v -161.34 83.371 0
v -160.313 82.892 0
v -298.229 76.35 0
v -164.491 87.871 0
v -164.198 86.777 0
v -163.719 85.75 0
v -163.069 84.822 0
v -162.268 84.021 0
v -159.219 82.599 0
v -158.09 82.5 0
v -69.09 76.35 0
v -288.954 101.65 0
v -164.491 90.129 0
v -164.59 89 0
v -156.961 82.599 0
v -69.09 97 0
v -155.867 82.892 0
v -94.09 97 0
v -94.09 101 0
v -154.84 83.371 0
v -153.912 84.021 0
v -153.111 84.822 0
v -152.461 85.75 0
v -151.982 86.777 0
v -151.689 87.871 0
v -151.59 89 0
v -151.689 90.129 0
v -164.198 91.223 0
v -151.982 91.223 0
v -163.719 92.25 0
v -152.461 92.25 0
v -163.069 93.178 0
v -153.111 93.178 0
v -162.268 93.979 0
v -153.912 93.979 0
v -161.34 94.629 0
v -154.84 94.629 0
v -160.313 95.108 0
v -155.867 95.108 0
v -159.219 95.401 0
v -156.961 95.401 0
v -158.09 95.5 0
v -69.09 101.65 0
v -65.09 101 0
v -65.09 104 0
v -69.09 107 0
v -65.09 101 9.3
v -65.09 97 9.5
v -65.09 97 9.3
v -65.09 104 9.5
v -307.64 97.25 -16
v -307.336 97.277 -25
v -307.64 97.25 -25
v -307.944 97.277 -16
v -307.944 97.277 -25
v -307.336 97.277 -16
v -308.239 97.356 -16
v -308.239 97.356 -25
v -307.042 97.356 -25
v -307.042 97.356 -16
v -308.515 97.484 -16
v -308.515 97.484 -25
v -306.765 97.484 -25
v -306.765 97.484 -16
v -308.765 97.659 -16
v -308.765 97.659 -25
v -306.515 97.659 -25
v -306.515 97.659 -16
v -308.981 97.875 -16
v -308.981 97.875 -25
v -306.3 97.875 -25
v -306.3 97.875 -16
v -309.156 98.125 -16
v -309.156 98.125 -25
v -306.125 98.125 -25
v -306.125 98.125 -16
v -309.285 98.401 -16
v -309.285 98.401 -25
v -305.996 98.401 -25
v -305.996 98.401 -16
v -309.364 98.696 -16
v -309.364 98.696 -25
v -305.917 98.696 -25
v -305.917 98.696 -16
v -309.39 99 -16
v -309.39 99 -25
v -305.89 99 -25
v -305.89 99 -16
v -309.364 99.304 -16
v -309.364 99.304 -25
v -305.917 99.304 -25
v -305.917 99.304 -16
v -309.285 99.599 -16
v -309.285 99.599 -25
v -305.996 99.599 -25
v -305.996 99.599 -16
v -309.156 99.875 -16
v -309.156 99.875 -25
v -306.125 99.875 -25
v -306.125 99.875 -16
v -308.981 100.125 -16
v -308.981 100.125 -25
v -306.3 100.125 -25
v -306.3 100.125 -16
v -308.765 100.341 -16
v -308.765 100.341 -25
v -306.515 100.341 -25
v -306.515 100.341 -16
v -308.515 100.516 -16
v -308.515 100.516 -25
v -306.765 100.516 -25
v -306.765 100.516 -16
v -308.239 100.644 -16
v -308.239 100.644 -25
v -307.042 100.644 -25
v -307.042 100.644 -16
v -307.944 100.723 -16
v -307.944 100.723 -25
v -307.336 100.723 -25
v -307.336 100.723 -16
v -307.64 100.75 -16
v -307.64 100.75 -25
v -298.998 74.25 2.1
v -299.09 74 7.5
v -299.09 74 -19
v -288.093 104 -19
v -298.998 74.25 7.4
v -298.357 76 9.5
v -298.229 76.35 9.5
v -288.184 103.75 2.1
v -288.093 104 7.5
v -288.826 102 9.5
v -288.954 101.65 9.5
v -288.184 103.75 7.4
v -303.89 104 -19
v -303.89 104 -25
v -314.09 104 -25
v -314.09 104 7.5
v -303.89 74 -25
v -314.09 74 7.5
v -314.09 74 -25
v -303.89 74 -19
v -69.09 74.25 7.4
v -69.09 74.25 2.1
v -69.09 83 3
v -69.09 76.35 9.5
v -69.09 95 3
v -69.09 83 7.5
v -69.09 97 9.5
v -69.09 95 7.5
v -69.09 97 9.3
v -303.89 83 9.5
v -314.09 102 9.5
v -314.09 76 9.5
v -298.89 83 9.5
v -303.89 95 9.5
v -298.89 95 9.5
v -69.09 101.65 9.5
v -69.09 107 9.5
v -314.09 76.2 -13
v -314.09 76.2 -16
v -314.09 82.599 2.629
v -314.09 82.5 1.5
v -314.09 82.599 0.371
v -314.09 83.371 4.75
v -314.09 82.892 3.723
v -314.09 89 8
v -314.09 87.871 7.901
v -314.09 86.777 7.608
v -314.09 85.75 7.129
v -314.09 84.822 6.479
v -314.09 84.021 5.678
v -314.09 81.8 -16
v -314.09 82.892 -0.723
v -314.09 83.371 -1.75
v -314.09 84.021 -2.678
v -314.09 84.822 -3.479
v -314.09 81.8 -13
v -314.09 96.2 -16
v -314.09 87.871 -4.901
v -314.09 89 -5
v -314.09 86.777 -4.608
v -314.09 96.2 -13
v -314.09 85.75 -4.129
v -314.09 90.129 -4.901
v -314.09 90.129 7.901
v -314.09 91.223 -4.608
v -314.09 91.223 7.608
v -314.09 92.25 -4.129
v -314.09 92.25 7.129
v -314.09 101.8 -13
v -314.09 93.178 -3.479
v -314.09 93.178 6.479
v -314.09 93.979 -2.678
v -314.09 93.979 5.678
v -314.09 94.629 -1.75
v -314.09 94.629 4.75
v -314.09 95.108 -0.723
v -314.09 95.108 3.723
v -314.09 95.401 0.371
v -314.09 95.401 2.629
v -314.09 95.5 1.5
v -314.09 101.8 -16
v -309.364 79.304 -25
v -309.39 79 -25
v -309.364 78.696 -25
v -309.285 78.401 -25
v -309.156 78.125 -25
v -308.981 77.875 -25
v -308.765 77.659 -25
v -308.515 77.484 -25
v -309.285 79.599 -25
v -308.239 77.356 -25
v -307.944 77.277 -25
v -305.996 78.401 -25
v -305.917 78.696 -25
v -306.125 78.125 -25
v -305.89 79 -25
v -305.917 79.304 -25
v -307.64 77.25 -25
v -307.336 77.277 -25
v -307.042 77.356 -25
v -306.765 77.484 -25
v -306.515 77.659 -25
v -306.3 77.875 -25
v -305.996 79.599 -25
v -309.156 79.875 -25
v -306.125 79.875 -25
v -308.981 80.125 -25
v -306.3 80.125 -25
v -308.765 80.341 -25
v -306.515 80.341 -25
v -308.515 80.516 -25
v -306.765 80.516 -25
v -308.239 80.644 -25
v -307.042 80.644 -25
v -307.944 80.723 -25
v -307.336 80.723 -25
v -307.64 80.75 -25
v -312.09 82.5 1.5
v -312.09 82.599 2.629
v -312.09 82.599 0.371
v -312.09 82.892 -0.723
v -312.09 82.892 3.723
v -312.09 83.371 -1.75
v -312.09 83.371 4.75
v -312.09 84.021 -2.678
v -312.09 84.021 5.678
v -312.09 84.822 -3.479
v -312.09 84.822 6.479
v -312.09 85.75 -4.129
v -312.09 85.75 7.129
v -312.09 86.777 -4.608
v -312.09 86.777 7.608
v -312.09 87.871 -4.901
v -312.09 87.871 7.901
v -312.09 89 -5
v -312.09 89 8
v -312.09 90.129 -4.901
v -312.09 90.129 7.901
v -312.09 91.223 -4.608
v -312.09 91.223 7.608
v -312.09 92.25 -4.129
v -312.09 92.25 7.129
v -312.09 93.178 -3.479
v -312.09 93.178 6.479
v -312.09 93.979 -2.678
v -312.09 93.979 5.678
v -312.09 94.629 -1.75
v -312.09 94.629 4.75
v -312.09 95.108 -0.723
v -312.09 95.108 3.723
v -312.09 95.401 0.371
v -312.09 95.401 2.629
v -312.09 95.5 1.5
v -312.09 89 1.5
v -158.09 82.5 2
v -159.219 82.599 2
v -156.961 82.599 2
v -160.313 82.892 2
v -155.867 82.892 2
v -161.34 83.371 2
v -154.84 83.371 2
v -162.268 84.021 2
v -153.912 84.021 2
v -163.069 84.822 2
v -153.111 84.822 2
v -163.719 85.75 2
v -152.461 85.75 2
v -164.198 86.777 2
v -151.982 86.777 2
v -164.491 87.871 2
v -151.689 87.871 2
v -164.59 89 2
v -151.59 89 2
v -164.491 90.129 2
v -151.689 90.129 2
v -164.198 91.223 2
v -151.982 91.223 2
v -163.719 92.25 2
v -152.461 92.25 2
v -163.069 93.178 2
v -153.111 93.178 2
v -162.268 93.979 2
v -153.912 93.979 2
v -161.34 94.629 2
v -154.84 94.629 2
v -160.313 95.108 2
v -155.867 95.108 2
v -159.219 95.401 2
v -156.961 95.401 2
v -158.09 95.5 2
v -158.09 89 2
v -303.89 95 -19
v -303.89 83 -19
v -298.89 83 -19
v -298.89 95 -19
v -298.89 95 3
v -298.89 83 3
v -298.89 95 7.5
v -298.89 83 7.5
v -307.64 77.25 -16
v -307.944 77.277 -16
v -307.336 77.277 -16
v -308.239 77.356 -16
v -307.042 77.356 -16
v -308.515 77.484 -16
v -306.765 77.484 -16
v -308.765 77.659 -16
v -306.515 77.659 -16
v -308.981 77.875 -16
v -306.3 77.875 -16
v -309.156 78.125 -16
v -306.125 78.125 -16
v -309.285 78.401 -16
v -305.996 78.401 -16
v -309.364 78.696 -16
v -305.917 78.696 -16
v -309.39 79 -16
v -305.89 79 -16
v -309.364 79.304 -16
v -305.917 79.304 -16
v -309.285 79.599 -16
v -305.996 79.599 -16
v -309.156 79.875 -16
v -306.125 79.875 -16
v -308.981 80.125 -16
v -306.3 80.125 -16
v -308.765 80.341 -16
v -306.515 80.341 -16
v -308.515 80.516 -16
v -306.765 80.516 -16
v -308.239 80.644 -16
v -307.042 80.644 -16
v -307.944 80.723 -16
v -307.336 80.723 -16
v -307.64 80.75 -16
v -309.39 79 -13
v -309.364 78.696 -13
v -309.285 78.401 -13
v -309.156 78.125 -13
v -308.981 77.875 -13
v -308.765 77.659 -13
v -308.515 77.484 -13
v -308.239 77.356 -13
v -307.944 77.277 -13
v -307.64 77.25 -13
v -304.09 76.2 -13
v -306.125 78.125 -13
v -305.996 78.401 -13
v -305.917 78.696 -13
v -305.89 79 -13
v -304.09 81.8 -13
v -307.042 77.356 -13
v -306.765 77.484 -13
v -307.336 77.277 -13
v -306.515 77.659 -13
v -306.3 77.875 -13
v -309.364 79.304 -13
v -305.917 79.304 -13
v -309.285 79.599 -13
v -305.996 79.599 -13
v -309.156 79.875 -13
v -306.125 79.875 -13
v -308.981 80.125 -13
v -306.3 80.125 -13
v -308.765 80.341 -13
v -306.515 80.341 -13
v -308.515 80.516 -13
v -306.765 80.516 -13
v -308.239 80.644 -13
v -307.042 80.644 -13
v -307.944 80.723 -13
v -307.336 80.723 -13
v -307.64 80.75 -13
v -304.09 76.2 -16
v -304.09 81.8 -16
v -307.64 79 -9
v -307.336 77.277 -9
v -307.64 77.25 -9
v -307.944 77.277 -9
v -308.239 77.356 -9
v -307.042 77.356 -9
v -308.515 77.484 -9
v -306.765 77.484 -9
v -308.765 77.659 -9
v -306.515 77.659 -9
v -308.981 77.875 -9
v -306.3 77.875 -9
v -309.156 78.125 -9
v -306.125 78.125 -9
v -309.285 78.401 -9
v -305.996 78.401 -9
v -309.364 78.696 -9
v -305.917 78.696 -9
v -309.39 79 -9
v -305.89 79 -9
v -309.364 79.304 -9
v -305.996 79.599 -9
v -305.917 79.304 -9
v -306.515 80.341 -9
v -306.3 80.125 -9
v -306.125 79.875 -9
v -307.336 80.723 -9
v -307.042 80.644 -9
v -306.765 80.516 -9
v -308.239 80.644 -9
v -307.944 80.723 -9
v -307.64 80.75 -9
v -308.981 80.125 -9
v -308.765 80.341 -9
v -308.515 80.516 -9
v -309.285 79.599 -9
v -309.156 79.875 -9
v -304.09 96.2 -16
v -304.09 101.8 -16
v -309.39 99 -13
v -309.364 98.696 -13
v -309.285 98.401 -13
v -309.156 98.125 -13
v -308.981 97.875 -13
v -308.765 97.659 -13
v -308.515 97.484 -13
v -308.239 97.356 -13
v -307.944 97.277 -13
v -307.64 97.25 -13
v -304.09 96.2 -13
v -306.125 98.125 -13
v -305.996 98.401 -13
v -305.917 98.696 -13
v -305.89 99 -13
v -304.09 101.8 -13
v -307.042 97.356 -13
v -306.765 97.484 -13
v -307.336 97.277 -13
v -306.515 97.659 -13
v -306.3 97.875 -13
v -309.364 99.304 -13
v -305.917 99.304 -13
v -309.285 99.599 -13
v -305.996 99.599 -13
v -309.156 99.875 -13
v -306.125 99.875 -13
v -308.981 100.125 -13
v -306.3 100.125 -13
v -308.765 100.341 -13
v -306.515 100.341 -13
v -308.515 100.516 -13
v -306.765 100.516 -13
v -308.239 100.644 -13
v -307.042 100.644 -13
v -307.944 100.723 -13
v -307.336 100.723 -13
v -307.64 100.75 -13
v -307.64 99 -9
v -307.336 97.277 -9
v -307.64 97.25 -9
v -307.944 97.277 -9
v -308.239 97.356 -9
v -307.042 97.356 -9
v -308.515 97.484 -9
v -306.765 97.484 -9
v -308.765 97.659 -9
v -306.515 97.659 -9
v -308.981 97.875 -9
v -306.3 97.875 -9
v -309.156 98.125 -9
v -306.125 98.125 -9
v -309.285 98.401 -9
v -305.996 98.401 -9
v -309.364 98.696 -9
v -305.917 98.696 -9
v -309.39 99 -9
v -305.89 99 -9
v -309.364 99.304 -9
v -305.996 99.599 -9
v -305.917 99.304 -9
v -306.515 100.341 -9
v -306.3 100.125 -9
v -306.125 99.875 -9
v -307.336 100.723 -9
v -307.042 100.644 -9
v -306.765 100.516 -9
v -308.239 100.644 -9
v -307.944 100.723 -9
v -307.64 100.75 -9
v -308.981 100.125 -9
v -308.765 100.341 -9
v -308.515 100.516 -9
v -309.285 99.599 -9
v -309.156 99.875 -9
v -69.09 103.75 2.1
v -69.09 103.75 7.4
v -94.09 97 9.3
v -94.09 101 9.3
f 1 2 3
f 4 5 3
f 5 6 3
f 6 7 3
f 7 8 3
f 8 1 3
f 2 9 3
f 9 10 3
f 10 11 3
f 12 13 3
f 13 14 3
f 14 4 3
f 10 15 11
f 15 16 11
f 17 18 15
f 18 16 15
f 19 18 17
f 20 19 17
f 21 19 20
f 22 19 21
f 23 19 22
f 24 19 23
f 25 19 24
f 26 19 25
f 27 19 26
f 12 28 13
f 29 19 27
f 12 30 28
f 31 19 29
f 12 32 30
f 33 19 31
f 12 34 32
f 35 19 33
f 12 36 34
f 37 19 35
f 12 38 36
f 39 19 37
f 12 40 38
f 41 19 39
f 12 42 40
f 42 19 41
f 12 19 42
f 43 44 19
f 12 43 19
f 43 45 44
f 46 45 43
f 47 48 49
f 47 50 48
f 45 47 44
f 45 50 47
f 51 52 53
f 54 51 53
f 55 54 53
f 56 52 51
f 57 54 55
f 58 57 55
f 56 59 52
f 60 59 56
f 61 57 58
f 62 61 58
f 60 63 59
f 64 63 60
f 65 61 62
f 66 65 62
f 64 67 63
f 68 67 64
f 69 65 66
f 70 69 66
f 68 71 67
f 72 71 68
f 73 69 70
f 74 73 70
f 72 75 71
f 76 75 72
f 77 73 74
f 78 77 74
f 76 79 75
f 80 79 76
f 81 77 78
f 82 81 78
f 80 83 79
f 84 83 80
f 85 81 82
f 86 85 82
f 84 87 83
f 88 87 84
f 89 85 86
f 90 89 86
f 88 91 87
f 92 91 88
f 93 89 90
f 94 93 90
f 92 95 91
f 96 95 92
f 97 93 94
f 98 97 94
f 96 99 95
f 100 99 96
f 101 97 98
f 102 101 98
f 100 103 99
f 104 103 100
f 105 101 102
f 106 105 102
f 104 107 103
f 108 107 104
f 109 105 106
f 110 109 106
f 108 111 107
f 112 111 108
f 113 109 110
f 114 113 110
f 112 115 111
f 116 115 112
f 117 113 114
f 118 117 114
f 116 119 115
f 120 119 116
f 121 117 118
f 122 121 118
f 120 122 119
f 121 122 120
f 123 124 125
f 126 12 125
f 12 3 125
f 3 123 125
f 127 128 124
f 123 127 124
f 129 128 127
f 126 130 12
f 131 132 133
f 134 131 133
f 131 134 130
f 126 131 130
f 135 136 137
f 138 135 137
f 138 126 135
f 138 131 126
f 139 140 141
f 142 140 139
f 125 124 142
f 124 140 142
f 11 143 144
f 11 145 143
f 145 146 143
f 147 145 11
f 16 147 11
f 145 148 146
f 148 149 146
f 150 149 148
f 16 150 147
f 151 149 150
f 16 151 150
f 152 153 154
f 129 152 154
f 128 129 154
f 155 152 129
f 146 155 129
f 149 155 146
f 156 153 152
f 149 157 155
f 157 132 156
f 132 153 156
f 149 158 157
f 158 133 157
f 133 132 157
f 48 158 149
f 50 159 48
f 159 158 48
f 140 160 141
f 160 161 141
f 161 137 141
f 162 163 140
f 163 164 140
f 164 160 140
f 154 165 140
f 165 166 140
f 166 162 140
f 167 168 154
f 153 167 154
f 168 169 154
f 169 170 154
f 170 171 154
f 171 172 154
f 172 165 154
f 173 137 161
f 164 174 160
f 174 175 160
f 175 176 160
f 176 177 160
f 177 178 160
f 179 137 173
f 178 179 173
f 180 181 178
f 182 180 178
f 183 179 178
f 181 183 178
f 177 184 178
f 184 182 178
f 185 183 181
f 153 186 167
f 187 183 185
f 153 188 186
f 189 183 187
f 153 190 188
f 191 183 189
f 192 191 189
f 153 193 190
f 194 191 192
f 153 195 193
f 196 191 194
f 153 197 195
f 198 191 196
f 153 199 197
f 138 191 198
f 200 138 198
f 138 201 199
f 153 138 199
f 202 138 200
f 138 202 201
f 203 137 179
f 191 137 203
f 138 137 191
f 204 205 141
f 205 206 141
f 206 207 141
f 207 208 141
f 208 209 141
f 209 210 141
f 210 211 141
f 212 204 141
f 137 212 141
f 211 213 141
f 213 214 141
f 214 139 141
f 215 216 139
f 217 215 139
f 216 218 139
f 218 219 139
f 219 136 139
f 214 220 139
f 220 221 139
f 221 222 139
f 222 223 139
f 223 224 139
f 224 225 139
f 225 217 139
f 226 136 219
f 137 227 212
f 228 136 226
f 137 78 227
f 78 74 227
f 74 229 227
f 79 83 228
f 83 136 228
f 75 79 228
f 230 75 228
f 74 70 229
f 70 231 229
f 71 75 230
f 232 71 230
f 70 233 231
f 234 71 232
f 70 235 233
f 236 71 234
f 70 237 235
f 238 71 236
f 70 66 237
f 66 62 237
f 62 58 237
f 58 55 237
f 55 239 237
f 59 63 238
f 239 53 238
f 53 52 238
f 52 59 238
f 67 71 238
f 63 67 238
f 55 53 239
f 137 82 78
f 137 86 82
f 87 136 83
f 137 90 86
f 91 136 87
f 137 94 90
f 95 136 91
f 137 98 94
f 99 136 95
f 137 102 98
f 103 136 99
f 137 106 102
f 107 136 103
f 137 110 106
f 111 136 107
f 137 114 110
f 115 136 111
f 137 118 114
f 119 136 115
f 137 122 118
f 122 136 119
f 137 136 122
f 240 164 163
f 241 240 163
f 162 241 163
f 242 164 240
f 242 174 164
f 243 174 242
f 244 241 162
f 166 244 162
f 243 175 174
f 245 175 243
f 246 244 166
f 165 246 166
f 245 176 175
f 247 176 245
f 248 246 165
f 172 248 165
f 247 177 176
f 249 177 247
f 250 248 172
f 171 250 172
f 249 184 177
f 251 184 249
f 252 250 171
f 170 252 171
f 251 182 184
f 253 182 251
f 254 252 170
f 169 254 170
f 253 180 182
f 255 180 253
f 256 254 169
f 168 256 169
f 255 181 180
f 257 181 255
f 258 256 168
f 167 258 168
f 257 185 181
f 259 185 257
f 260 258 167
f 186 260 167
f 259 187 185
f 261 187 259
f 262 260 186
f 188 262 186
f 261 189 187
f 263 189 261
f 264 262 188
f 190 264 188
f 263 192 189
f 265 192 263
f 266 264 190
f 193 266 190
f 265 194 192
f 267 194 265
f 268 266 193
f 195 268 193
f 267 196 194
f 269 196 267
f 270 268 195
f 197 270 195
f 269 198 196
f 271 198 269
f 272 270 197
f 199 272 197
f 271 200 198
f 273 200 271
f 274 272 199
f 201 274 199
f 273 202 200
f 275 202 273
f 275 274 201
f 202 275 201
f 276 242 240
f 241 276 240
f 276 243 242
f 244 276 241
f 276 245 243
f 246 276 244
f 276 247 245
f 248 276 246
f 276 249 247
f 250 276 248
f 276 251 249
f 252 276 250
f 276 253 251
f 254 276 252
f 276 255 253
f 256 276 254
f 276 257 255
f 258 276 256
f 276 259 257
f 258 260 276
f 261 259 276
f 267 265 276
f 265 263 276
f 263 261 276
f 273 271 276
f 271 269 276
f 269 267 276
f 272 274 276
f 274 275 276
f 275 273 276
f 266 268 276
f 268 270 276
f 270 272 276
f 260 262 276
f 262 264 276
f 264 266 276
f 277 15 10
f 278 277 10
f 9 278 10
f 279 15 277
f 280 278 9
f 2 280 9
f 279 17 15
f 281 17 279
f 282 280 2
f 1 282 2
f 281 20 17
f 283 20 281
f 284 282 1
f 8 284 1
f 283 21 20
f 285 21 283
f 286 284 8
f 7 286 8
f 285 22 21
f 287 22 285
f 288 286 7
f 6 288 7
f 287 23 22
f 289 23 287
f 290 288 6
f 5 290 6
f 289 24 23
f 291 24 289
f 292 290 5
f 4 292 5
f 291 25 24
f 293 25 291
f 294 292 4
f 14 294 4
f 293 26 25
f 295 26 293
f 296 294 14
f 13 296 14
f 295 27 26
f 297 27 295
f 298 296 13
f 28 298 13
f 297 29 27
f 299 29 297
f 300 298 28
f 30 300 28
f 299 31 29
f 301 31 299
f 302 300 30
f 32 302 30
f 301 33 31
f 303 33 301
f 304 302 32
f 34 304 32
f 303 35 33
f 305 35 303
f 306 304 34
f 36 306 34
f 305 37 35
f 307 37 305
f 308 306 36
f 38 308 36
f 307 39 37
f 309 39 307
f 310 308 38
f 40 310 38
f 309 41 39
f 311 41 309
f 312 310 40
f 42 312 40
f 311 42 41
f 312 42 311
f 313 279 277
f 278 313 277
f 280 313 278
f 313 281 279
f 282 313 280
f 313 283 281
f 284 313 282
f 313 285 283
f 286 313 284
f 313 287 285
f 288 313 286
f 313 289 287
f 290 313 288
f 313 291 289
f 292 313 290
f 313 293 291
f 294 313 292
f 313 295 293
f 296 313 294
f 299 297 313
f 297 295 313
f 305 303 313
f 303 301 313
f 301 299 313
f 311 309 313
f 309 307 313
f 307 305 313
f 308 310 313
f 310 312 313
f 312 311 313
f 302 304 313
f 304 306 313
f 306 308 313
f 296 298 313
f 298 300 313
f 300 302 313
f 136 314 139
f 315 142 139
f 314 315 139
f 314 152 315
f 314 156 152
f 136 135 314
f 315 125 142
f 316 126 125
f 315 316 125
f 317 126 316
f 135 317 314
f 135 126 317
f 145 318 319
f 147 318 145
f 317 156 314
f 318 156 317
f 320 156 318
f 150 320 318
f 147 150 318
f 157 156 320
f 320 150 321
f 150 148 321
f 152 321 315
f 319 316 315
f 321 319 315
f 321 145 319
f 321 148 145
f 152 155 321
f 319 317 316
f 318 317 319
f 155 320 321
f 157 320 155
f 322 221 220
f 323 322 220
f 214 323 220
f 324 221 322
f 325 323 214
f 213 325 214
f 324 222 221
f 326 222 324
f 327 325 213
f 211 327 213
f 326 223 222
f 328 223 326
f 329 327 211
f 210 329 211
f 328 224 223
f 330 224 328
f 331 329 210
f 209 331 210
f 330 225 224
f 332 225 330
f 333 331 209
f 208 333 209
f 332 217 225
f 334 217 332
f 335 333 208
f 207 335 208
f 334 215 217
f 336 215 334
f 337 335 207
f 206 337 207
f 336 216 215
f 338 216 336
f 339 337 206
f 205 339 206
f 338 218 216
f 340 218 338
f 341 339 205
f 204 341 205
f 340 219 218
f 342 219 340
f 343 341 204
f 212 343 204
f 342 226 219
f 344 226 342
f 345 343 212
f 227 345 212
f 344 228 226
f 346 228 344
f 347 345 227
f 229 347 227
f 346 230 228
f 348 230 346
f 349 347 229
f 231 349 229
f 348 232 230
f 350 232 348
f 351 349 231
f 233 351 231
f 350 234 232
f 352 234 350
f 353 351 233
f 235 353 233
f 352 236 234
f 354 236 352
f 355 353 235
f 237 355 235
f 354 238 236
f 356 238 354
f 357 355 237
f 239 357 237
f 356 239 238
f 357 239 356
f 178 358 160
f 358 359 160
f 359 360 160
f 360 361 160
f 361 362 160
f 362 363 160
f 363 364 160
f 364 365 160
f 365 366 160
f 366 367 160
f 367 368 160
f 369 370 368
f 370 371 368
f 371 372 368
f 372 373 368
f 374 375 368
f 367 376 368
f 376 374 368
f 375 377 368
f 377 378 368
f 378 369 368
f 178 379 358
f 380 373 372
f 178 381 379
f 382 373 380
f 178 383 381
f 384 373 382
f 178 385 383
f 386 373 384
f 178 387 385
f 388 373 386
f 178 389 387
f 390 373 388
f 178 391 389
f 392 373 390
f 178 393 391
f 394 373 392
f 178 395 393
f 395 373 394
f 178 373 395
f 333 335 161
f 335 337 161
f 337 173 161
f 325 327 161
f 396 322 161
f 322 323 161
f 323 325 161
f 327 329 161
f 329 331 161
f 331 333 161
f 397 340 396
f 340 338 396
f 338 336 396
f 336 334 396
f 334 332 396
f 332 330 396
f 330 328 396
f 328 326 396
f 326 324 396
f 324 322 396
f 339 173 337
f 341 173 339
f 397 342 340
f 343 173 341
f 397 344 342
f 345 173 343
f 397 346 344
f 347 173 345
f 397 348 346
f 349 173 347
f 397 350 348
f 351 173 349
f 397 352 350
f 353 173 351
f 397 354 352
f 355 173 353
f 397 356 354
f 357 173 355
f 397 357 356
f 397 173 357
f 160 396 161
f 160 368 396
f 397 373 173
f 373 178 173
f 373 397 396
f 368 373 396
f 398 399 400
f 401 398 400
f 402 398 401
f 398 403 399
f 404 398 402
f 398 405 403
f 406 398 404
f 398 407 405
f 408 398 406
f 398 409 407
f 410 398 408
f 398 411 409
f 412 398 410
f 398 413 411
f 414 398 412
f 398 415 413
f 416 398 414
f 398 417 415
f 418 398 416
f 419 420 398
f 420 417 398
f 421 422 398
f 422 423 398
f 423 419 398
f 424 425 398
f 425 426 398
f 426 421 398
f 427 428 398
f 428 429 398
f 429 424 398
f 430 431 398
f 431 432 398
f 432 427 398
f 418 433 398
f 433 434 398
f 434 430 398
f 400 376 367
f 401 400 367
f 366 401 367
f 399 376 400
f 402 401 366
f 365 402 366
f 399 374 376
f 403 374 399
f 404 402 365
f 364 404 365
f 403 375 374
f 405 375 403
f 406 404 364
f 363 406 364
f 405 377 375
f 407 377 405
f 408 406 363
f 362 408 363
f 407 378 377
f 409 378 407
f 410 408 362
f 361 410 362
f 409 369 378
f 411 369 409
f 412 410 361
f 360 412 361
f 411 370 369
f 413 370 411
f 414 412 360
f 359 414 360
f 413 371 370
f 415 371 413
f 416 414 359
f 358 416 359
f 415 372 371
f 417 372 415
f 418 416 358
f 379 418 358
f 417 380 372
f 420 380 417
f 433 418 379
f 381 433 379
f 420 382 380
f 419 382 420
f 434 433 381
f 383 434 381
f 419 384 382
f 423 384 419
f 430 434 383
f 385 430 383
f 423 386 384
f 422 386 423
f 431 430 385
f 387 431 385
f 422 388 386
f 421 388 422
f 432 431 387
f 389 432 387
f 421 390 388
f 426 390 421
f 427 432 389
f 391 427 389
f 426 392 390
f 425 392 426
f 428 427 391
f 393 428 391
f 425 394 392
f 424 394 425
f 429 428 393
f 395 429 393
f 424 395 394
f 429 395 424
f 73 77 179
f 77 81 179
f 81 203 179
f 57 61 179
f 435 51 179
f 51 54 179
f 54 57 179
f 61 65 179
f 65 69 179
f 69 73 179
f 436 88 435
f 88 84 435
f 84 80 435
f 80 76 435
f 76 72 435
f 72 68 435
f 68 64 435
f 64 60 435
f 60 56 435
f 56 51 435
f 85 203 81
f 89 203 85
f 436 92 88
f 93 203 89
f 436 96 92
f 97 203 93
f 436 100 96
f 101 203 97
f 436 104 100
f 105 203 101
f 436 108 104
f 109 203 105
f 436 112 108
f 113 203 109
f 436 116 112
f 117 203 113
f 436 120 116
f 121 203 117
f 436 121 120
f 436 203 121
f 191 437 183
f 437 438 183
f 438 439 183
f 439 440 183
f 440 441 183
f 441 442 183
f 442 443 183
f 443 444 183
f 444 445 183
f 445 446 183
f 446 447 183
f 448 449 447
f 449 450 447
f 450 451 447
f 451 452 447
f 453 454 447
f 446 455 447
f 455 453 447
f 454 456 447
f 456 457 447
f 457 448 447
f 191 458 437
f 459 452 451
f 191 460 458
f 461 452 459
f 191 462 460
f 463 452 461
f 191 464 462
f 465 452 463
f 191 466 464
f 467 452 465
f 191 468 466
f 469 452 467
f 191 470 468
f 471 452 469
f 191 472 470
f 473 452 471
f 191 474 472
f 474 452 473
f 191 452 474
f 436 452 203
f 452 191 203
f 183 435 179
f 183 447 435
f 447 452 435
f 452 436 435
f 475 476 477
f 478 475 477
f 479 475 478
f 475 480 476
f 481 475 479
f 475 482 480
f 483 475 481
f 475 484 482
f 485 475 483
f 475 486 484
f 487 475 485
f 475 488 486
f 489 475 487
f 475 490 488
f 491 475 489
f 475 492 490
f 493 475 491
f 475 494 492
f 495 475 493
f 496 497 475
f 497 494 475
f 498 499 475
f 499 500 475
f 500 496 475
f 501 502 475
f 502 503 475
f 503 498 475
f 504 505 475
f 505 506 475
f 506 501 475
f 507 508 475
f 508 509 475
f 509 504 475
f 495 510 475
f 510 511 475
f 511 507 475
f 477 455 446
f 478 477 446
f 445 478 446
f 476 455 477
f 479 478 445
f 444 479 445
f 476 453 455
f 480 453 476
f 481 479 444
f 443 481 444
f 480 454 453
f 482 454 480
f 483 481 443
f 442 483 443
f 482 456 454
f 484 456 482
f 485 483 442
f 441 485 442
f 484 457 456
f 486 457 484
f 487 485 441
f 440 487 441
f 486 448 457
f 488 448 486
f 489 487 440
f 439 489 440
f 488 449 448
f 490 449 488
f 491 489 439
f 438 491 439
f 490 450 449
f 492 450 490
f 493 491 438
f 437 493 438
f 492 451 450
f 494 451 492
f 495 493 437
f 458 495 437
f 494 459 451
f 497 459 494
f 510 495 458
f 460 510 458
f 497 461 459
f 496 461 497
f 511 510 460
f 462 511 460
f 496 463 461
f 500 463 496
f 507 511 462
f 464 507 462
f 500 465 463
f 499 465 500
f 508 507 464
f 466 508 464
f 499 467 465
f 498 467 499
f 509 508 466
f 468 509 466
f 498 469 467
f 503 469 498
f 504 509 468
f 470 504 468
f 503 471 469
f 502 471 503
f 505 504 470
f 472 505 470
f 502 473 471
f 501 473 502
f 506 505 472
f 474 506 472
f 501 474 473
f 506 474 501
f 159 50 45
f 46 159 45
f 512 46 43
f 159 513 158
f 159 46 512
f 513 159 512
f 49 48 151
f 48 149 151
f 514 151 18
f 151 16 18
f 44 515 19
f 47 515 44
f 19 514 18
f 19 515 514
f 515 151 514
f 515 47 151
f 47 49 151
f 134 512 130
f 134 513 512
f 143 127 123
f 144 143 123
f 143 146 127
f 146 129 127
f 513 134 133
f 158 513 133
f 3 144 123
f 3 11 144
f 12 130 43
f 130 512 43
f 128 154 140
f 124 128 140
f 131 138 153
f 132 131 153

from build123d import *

# Parameters (mm, degrees)
SKETCH6_W                = 230
SKETCH6_H                = 30
BOSS_EXTRUDE1_DEPTH      = 9.5
BOSS_EXTRUDE2_DEPTH      = 9.5
BOSS_EXTRUDE2_DEPTH_BACK = 25
SKETCH12_R               = 6.5
CUT_EXTRUDE2_DEPTH       = 2
SKETCH15_R               = 6.5
CUT_EXTRUDE3_DEPTH       = 2
CUT_EXTRUDE4_DEPTH       = 6
SKETCH9_W                = 4.5
SKETCH9_H                = 12
CUT_EXTRUDE5_DEPTH       = 231
SKETCH17_W               = 5
SKETCH17_H               = 12
CUT_EXTRUDE6_DEPTH       = 29.5
SKETCH13_R               = 1.75
CUT_EXTRUDE8_DEPTH       = 16
SKETCH19_W               = 3
SKETCH19_H               = 5.6
CUT_EXTRUDE9_DEPTH       = 10
SKETCH20_W               = 4
SKETCH20_H               = 4
BOSS_EXTRUDE3_DEPTH      = 9.5
SKETCH20_3_W             = 25
SKETCH20_3_H             = 4
SKETCH20_3_W_2           = 4
CUT_EXTRUDE10_DEPTH      = 9.3
CUT_EXTRUDE11_DEPTH      = 10.5
CHAMFER2_SIZE            = 2.1
CHAMFER3_SIZE            = 2


with BuildPart() as part:
    # Sketch6 → Boss-Extrude1 (new body)
    with BuildSketch(Plane.XY):
        with Locations((-184.090144231, 89)):
            Rectangle(SKETCH6_W, SKETCH6_H)
    extrude(amount=BOSS_EXTRUDE1_DEPTH)

    # Sketch11 → Boss-Extrude2 (add, two sides)
    with BuildSketch(Plane.XY) as boss_extrude2_sk:
        Polygon((-299.090144231, 74), (-288.092548077, 104), (-314.090144231, 104), (-314.090144231, 74), align=None)
    extrude(amount=BOSS_EXTRUDE2_DEPTH)
    extrude(boss_extrude2_sk.sketch, amount=-BOSS_EXTRUDE2_DEPTH_BACK)

    # Sketch12 → Cut-Extrude2 (cut)
    with BuildSketch(Plane.ZY.offset(314.090144231)):
        with Locations((1.5, 89)):
            Circle(SKETCH12_R)
    extrude(amount=-CUT_EXTRUDE2_DEPTH, mode=Mode.SUBTRACT)

    # Sketch15 → Cut-Extrude3 (cut)
    with BuildSketch(Plane(origin=(0, 0, 0), x_dir=(-1, 0, 0), z_dir=(0, 0, -1))):
        with Locations((158.090144231, 89)):
            Circle(SKETCH15_R)
    extrude(amount=-CUT_EXTRUDE3_DEPTH, mode=Mode.SUBTRACT)

    # Sketch16 → Cut-Extrude4 (cut)
    with BuildSketch(Plane(origin=(0, 0, -25), x_dir=(-1, 0, 0), z_dir=(0, 0, -1))):
        Polygon((303.890144231, 74), (303.890144231, 104), (288.092548077, 104), (299.090144231, 74), align=None)
    extrude(amount=-CUT_EXTRUDE4_DEPTH, mode=Mode.SUBTRACT)

    # Sketch9 → Cut-Extrude5 (cut, through all)
    with BuildSketch(Plane.ZY.offset(299.090144231)):
        with Locations((5.25, 89)):
            Rectangle(SKETCH9_W, SKETCH9_H)
    extrude(amount=-CUT_EXTRUDE5_DEPTH, mode=Mode.SUBTRACT)

    # Sketch17 → Cut-Extrude6 (cut, through all)
    with BuildSketch(Plane(origin=(0, 0, -19), x_dir=(-1, 0, 0), z_dir=(0, 0, -1))):
        with Locations((301.390144231, 89)):
            Rectangle(SKETCH17_W, SKETCH17_H)
    extrude(amount=-CUT_EXTRUDE6_DEPTH, mode=Mode.SUBTRACT)

    # Sketch13 → Cut-Extrude8 (cut)
    with BuildSketch(Plane(origin=(0, 0, -25), x_dir=(-1, 0, 0), z_dir=(0, 0, -1))):
        with Locations((307.640144231, 79)):
            Circle(SKETCH13_R)
        with Locations((307.640144231, 99)):
            Circle(SKETCH13_R)
    extrude(amount=-CUT_EXTRUDE8_DEPTH, mode=Mode.SUBTRACT)

    # Sketch19 → Cut-Extrude9 (cut)
    with BuildSketch(Plane.ZY.offset(314.090144231)):
        with Locations((-14.5, 79)):
            Rectangle(SKETCH19_W, SKETCH19_H)
        with Locations((-14.5, 99)):
            Rectangle(SKETCH19_W, SKETCH19_H)
    extrude(amount=-CUT_EXTRUDE9_DEPTH, mode=Mode.SUBTRACT)

    # Sketch20 → Boss-Extrude3 (add)
    with BuildSketch(Plane(origin=(0, 0, 0), x_dir=(-1, 0, 0), z_dir=(0, 0, -1))):
        Polygon((69.090144231, 101), (69.090144231, 104), (69.090144231, 107), (65.090144231, 104), (65.090144231, 101), align=None)
        with Locations((67.090144231, 99)):
            Rectangle(SKETCH20_W, SKETCH20_H)
    extrude(amount=-BOSS_EXTRUDE3_DEPTH)

    # Sketch20<3> → Cut-Extrude10 (cut)
    with BuildSketch(Plane(origin=(0, 0, 0), x_dir=(-1, 0, 0), z_dir=(0, 0, -1))):
        with Locations((81.590144231, 99)):
            Rectangle(SKETCH20_3_W, SKETCH20_3_H)
        with Locations((67.090144231, 99)):
            Rectangle(SKETCH20_3_W_2, SKETCH20_3_H)
    extrude(amount=-CUT_EXTRUDE10_DEPTH, mode=Mode.SUBTRACT)

    # Sketch21 → Cut-Extrude11 (cut, through all)
    with BuildSketch(Plane(origin=(0, 0, 0), x_dir=(-1, 0, 0), z_dir=(0, 0, -1))):
        Polygon((288.092548077, 104), (288.184194712, 103.75), (69.090144231, 103.75), (69.090144231, 104), align=None)
        Polygon((299.090144231, 74), (69.090144231, 74), (69.090144231, 74.25), (298.998497596, 74.25), align=None)
    extrude(amount=-CUT_EXTRUDE11_DEPTH, mode=Mode.SUBTRACT)

    # Chamfer2
    chamfer2_edges = [part.edges().sort_by_distance(p)[0] for p in [
        (-178.637169471, 103.75, 9.5),
        (-178.637169471, 103.75, 0),
        (-184.044320913, 74.25, 9.5),
        (-184.044320913, 74.25, 0),
    ]]
    chamfer(chamfer2_edges, length=CHAMFER2_SIZE)

    # Chamfer3
    chamfer3_edges = [part.edges().sort_by_distance(p)[0] for p in [
        (-301.091346154, 104, 9.5),
        (-306.590144231, 74, 9.5),
    ]]
    chamfer(chamfer3_edges, length=CHAMFER3_SIZE)


solid = part.part
